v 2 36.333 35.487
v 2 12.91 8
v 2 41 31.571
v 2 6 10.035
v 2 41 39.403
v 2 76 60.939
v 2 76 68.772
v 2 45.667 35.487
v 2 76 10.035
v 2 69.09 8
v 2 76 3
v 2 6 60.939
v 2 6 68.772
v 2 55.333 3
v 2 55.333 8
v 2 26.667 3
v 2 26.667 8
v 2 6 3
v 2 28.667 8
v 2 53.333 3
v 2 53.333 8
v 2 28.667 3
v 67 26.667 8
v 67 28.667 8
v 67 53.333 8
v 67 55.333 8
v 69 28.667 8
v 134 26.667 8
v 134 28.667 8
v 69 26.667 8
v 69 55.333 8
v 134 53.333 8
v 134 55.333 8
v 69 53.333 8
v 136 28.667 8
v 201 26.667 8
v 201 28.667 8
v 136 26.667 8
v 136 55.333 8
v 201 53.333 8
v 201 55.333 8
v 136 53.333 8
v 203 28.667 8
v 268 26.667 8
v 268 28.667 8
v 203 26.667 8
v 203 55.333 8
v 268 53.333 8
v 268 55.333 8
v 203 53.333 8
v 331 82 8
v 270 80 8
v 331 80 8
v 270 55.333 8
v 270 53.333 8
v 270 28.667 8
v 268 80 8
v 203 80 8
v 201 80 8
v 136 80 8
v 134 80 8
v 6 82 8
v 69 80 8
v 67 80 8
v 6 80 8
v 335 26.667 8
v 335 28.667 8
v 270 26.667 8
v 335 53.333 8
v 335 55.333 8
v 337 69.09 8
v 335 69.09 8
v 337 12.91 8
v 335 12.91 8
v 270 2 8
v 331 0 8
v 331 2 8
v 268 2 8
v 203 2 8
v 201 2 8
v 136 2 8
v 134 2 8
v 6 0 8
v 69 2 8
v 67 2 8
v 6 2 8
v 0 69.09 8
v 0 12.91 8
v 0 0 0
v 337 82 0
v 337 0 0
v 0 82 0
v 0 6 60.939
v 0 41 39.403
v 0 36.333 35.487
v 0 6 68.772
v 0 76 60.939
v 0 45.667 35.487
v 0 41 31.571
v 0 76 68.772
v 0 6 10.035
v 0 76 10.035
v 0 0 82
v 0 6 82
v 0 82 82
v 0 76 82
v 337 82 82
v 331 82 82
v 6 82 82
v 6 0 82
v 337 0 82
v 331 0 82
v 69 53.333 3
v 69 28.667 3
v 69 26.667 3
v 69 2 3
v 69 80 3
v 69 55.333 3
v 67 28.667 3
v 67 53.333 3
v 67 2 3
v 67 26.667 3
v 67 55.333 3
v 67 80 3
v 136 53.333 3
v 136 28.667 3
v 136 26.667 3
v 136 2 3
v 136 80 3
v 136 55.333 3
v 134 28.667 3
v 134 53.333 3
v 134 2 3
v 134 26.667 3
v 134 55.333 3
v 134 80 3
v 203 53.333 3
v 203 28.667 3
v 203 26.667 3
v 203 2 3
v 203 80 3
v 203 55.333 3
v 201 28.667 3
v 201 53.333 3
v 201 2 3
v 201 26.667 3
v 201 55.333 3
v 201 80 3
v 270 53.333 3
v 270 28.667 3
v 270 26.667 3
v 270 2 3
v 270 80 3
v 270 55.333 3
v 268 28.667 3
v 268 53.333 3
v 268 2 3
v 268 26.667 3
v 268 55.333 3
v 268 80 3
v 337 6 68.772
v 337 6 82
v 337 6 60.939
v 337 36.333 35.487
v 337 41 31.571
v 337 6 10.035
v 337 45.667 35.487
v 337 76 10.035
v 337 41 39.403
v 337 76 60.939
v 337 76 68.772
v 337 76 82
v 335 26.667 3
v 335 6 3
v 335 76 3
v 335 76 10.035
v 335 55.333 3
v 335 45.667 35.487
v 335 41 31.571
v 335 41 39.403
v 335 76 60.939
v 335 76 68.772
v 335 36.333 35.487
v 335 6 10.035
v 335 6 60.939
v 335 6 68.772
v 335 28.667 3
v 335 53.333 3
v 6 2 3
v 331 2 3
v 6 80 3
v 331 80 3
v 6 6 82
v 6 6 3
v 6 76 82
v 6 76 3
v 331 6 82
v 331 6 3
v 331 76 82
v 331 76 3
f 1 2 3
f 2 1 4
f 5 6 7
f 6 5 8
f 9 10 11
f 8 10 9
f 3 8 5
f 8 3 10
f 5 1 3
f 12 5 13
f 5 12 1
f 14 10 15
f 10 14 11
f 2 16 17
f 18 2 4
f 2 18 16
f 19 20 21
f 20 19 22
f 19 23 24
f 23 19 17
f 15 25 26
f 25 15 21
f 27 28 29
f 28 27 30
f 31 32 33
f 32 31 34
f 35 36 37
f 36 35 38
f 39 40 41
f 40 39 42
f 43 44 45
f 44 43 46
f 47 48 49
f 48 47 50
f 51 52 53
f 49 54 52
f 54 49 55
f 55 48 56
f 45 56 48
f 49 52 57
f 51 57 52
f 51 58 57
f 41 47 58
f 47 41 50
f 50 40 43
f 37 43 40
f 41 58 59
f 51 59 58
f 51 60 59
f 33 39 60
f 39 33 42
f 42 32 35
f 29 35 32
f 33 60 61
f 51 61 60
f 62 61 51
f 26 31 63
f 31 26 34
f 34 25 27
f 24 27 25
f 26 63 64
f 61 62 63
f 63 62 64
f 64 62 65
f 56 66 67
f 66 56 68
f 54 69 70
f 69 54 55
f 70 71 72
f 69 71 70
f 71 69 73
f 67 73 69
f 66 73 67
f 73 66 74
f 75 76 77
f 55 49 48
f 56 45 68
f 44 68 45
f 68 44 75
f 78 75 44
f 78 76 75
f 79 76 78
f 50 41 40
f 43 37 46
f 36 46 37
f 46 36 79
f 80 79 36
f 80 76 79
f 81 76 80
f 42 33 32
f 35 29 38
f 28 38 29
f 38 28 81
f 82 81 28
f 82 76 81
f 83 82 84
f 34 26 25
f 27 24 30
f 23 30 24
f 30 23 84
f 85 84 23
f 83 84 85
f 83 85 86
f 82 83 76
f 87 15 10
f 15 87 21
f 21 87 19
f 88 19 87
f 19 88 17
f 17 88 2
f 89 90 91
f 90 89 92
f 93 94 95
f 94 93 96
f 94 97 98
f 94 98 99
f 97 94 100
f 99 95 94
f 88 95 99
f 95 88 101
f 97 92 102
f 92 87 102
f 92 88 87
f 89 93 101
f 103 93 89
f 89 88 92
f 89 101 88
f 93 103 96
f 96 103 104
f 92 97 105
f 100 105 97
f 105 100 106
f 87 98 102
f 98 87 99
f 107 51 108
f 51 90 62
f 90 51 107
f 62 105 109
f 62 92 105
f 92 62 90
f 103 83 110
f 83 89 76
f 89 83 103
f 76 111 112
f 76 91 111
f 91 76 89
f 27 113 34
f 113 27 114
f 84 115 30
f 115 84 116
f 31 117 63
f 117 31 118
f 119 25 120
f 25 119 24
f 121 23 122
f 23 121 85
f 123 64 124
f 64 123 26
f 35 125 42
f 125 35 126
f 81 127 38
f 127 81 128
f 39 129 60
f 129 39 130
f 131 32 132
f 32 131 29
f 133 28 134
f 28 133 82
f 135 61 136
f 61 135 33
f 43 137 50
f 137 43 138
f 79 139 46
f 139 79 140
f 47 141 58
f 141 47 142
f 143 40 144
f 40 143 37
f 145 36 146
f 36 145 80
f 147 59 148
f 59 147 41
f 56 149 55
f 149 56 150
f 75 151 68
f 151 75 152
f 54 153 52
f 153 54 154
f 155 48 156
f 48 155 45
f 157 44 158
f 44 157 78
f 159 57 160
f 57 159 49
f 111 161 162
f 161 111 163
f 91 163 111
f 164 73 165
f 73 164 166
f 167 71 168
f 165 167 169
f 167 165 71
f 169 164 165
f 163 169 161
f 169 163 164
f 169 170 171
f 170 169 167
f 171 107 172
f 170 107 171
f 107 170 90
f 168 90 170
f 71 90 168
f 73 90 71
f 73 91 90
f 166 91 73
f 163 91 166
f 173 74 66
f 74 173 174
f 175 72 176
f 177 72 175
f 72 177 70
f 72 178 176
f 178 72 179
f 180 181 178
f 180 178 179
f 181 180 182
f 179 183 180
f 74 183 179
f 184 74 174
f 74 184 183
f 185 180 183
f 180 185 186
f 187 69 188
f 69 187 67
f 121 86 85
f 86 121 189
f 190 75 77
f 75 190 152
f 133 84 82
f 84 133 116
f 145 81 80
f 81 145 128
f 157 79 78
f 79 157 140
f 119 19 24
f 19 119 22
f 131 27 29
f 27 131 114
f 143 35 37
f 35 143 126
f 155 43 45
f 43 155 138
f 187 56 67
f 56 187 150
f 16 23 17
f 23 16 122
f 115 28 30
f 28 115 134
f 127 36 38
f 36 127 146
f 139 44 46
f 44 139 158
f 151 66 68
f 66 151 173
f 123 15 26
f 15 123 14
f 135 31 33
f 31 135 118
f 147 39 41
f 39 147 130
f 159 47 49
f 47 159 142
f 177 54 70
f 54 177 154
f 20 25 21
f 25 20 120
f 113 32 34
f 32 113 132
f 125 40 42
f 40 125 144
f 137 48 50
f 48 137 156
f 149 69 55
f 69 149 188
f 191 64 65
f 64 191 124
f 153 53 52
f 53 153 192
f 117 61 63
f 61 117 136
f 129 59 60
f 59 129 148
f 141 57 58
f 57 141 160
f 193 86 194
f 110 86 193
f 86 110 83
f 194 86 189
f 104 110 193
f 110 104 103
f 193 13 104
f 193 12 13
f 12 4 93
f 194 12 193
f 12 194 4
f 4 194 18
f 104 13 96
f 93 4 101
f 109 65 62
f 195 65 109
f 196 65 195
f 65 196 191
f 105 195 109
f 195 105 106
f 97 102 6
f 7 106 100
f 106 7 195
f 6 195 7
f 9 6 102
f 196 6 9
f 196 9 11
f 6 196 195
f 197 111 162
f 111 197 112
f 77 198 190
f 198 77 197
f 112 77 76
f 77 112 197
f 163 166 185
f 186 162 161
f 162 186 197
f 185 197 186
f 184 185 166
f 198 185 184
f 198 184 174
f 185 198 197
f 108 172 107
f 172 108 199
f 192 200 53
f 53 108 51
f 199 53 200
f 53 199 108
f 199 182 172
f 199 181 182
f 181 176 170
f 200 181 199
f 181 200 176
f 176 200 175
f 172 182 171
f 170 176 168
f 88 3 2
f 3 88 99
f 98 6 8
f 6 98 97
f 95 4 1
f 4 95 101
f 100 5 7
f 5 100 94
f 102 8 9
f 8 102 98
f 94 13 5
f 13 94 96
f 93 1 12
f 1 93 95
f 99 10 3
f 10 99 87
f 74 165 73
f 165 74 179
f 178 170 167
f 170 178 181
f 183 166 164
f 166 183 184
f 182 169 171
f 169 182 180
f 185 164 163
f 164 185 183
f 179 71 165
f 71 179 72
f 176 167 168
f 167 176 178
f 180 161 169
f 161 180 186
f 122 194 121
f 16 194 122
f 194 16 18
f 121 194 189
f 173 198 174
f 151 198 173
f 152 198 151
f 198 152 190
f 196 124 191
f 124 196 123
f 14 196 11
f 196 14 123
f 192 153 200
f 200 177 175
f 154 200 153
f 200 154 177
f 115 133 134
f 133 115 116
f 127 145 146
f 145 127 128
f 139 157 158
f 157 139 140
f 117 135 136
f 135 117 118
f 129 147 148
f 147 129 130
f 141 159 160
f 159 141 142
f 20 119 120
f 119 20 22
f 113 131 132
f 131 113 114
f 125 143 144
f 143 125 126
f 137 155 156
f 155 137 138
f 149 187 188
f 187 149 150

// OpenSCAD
w=337;
d=82;
h=8; // 15

cube([w, d, 3]);
for (x = [0:(w-2)/5:w]) {
  color("red")
  translate([x, 0, 0])
  cube([2, d, h]);
}
for (y = [0:(d-2)/3:d]) {
  color("red")
  translate([0, y, 0])
  cube([w, 2, h]);
}
for (x = [0:w-6:w]) {
  for (y = [0:d-6:d]) {
    color("orange")
    translate([x, y, 0])
    cube([6, 6, d]);
  }
}
for (x = [0:w-2:w]) {
    translate([x, 0, 5])
      rotate([-50, 0, 0])
      cube([2, 6, d+20]);
    mirror([0,1,0])
      translate([x, -d, 5])
      rotate([-50, 0, 0])
      cube([2, 6, d+20]);
}
